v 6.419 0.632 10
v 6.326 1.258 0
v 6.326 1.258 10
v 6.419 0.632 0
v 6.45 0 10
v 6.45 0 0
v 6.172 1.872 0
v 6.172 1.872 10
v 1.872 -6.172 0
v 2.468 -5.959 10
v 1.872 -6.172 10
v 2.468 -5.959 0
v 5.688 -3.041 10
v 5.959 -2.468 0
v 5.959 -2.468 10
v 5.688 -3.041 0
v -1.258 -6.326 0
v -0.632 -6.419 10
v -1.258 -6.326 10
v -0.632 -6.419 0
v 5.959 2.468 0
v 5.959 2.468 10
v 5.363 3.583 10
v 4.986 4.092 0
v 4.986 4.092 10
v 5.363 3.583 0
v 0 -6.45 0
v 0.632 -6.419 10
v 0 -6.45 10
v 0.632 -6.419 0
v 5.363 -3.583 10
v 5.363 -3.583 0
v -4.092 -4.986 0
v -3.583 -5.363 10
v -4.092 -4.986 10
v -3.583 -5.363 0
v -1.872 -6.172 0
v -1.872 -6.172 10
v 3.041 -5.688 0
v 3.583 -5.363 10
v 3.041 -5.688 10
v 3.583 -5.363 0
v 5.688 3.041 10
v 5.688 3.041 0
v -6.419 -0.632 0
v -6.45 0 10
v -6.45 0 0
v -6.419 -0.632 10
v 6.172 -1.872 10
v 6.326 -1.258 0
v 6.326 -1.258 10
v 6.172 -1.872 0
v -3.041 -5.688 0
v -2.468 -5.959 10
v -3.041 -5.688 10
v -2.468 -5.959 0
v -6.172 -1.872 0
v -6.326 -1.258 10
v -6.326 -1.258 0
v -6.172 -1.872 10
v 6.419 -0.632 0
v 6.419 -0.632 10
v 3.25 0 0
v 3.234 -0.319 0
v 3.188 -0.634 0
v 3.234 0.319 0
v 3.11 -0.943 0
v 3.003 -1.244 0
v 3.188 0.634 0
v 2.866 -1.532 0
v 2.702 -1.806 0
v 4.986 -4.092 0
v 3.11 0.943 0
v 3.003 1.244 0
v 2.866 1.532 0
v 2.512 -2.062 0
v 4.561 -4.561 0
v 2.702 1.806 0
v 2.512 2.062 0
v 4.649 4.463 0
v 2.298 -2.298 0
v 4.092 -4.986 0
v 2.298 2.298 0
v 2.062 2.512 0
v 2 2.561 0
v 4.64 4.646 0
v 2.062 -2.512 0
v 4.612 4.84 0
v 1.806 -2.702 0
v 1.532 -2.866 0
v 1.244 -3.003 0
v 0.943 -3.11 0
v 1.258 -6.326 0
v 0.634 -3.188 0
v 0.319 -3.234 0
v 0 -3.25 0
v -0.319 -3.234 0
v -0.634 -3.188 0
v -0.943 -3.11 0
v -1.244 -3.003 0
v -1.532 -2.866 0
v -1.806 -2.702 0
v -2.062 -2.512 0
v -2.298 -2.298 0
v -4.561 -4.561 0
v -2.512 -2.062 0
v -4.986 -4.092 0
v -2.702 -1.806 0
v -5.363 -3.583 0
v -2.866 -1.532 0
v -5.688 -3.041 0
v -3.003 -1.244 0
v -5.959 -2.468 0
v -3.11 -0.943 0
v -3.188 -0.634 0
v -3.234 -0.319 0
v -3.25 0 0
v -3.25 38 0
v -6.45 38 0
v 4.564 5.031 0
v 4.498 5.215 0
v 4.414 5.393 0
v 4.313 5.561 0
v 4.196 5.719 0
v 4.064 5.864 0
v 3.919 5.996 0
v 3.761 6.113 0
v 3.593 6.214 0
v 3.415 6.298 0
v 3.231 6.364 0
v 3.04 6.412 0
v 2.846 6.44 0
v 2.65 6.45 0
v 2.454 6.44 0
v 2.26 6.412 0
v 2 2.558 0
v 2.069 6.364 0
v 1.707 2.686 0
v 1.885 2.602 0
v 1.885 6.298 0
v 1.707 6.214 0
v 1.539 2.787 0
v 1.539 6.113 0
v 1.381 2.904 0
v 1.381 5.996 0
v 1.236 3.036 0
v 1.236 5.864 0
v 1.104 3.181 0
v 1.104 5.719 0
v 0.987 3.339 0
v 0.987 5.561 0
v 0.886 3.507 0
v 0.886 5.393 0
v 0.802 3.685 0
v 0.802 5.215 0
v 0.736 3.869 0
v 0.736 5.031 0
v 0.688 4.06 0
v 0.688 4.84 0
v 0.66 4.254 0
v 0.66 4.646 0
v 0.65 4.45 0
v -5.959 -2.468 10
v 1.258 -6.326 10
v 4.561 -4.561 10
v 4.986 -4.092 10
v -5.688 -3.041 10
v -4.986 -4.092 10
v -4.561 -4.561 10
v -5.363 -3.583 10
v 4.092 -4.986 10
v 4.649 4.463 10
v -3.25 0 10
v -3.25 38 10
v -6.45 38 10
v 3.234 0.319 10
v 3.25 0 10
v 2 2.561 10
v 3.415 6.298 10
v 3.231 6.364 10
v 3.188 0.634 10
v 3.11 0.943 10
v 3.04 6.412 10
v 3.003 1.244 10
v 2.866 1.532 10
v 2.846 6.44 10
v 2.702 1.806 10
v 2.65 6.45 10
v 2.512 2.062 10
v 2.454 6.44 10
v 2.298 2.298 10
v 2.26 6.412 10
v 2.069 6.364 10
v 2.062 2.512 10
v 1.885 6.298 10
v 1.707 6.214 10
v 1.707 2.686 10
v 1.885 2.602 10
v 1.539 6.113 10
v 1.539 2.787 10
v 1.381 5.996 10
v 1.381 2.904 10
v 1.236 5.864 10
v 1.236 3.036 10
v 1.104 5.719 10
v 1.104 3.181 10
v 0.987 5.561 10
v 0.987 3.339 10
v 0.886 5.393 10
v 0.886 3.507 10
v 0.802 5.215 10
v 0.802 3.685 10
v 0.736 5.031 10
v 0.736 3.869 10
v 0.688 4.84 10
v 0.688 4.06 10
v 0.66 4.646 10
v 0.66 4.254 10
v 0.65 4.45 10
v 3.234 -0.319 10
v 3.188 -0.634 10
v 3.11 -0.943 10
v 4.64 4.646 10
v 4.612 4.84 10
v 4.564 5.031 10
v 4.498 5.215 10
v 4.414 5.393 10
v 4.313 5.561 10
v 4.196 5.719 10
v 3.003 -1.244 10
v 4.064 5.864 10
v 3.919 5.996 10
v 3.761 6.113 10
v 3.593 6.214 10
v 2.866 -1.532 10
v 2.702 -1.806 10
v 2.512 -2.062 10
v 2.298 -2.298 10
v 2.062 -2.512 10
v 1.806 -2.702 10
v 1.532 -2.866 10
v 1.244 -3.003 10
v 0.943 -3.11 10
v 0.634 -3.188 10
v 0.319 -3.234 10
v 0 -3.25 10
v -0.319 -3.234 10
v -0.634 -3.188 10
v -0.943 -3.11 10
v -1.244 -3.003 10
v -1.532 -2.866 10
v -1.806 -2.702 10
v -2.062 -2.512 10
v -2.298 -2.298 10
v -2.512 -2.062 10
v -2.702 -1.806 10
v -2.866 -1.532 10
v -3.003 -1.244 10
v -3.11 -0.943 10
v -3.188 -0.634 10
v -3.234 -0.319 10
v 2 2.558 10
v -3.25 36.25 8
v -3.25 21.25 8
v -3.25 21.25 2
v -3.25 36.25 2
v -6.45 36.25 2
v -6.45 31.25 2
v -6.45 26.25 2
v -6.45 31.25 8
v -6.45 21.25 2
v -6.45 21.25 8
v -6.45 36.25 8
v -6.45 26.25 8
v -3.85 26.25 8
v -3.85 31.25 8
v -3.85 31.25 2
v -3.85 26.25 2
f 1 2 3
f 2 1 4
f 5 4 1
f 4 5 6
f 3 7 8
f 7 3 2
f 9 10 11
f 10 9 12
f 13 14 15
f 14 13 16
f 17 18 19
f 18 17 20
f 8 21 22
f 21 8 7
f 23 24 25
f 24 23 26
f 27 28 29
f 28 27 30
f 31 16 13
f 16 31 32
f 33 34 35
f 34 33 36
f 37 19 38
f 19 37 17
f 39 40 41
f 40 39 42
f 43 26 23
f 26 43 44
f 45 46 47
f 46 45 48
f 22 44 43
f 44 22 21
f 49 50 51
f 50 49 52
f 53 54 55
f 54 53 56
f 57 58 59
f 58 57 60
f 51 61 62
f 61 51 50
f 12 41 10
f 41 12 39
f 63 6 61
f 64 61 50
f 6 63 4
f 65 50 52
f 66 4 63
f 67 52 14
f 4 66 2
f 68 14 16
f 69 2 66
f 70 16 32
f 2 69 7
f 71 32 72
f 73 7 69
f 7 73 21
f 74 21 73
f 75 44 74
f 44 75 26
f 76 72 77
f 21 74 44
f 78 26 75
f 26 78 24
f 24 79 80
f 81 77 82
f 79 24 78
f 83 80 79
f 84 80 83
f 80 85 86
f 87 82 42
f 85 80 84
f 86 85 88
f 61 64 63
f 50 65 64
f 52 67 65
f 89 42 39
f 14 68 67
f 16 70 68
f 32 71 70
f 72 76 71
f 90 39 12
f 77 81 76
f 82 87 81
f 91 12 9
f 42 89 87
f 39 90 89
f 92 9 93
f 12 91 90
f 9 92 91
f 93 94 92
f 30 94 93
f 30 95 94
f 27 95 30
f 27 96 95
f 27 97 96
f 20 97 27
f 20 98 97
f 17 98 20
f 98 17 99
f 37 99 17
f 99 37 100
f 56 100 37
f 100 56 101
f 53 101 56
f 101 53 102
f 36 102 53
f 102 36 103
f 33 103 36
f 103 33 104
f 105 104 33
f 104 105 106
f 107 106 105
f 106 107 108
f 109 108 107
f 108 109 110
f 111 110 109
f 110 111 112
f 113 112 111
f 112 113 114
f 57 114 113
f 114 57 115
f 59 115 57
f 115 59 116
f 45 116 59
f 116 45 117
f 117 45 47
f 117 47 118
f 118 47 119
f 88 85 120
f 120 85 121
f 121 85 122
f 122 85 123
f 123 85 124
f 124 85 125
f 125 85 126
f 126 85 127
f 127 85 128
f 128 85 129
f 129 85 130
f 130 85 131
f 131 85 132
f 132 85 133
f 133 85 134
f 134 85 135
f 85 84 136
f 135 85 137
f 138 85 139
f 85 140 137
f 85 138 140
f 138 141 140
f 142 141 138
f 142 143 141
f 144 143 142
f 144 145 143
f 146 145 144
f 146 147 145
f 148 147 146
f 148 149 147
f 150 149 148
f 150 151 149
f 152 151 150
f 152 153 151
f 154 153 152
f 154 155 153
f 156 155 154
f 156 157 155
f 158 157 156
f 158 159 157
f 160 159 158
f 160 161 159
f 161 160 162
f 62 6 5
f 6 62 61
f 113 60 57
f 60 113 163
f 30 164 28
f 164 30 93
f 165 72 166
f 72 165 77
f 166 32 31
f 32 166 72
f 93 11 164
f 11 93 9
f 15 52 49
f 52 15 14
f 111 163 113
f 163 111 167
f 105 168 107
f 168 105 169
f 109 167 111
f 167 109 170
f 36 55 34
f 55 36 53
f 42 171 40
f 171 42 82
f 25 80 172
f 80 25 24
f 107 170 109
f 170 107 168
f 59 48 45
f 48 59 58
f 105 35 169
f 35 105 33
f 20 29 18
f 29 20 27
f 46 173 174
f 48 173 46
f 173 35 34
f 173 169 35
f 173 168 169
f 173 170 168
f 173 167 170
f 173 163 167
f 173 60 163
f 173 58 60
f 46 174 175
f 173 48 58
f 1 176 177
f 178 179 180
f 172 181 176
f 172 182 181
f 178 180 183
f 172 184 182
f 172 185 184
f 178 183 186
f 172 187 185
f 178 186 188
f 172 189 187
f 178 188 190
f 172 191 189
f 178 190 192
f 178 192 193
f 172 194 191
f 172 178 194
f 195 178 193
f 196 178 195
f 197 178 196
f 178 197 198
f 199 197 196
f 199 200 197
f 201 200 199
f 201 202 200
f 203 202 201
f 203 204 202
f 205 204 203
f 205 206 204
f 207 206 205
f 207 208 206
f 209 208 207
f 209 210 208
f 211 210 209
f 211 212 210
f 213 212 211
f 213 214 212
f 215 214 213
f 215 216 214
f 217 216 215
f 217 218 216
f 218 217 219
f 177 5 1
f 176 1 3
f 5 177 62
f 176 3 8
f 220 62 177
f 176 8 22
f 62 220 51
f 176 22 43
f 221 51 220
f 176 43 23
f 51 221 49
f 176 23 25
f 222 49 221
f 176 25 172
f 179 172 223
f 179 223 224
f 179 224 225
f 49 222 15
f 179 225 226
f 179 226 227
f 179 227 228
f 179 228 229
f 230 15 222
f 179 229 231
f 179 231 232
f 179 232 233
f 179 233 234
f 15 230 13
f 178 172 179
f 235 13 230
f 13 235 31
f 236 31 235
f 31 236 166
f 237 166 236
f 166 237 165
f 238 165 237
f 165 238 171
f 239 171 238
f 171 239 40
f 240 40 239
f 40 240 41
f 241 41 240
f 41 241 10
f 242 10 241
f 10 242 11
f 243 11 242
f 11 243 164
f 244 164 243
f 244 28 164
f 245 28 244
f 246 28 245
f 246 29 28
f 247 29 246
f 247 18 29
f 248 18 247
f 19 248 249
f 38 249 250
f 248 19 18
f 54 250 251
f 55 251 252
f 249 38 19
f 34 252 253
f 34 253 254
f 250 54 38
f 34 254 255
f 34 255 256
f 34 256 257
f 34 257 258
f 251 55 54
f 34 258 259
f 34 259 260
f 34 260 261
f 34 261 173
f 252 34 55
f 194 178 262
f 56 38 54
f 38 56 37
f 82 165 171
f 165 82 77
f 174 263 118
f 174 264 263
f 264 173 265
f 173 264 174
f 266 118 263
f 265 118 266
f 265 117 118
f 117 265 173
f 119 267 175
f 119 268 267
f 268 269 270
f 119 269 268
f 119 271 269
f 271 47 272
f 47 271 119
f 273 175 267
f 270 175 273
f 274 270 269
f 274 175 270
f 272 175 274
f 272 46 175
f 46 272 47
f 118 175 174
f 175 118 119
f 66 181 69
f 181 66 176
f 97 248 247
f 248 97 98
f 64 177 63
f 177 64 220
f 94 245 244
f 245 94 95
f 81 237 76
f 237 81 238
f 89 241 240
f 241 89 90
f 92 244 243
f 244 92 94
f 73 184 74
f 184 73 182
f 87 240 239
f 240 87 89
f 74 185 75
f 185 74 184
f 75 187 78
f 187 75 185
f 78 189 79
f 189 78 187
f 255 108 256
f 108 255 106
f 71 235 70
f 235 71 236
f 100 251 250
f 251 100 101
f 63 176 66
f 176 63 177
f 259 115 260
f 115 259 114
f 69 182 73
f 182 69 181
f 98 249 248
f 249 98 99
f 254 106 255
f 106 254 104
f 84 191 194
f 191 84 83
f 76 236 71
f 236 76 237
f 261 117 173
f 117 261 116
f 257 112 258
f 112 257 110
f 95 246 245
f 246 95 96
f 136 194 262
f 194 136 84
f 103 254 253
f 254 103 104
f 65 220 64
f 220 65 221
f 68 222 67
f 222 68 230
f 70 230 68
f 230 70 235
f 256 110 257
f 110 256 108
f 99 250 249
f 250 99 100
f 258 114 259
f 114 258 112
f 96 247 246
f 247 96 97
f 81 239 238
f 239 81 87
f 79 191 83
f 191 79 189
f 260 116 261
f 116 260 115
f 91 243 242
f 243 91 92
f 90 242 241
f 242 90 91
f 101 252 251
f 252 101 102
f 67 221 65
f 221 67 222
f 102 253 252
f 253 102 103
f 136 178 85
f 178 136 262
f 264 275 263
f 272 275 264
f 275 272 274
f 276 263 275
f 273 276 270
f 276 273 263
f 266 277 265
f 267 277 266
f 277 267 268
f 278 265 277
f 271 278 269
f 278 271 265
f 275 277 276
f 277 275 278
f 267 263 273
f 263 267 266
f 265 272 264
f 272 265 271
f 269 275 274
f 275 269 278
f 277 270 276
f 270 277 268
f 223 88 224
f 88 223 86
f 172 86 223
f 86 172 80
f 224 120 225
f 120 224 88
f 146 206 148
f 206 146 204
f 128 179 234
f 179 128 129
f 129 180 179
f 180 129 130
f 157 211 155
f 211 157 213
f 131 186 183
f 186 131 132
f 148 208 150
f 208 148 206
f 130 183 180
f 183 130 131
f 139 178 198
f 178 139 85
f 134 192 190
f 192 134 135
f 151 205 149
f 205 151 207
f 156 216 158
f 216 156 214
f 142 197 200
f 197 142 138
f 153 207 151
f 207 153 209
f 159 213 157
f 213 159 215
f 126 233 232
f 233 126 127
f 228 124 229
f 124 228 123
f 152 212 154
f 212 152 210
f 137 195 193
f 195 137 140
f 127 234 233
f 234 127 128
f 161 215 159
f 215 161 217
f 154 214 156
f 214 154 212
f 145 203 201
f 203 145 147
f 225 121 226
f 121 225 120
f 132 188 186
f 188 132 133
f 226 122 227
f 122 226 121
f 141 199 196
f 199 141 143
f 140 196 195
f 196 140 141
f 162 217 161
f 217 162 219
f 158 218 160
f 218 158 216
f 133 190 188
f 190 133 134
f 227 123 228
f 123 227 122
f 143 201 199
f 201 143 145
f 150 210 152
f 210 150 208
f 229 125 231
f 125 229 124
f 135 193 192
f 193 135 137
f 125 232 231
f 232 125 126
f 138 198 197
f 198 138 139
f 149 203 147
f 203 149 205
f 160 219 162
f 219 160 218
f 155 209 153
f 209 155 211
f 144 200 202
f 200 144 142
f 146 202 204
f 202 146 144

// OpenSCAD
$fn = 64;
d = 6.5; // Diameter of CAT5/6 cable
h = 10;
t = 3.2;
l  = 38;

module shape1() {
    cylinder(h=h, r=d/2+t);
    translate([-d/2-t, 0, 0])
        cube([t, l, h]);
}


difference() {
    shape1();
    translate([0,0,-0.1]) {
        cylinder(h=h+1, r=d/2);
        translate([-d/2,0,0])
            cube([d/2+2, l, h+1]);
    }
    offset = 18;
    translate([-d/2-0.6, d/2+offset, 2])
        cube([3, 15, h-4]);
    translate([-d/2-t-0.1, d/2+offset, 2])
        cube([3, 5, h-4]);
    translate([-d/2-t-0.1, d/2+offset+10, 2])
        cube([3, 5, h-4]);
}

translate([2.65, d/2+1.2, 0])
    cylinder(h=h, r=2);
